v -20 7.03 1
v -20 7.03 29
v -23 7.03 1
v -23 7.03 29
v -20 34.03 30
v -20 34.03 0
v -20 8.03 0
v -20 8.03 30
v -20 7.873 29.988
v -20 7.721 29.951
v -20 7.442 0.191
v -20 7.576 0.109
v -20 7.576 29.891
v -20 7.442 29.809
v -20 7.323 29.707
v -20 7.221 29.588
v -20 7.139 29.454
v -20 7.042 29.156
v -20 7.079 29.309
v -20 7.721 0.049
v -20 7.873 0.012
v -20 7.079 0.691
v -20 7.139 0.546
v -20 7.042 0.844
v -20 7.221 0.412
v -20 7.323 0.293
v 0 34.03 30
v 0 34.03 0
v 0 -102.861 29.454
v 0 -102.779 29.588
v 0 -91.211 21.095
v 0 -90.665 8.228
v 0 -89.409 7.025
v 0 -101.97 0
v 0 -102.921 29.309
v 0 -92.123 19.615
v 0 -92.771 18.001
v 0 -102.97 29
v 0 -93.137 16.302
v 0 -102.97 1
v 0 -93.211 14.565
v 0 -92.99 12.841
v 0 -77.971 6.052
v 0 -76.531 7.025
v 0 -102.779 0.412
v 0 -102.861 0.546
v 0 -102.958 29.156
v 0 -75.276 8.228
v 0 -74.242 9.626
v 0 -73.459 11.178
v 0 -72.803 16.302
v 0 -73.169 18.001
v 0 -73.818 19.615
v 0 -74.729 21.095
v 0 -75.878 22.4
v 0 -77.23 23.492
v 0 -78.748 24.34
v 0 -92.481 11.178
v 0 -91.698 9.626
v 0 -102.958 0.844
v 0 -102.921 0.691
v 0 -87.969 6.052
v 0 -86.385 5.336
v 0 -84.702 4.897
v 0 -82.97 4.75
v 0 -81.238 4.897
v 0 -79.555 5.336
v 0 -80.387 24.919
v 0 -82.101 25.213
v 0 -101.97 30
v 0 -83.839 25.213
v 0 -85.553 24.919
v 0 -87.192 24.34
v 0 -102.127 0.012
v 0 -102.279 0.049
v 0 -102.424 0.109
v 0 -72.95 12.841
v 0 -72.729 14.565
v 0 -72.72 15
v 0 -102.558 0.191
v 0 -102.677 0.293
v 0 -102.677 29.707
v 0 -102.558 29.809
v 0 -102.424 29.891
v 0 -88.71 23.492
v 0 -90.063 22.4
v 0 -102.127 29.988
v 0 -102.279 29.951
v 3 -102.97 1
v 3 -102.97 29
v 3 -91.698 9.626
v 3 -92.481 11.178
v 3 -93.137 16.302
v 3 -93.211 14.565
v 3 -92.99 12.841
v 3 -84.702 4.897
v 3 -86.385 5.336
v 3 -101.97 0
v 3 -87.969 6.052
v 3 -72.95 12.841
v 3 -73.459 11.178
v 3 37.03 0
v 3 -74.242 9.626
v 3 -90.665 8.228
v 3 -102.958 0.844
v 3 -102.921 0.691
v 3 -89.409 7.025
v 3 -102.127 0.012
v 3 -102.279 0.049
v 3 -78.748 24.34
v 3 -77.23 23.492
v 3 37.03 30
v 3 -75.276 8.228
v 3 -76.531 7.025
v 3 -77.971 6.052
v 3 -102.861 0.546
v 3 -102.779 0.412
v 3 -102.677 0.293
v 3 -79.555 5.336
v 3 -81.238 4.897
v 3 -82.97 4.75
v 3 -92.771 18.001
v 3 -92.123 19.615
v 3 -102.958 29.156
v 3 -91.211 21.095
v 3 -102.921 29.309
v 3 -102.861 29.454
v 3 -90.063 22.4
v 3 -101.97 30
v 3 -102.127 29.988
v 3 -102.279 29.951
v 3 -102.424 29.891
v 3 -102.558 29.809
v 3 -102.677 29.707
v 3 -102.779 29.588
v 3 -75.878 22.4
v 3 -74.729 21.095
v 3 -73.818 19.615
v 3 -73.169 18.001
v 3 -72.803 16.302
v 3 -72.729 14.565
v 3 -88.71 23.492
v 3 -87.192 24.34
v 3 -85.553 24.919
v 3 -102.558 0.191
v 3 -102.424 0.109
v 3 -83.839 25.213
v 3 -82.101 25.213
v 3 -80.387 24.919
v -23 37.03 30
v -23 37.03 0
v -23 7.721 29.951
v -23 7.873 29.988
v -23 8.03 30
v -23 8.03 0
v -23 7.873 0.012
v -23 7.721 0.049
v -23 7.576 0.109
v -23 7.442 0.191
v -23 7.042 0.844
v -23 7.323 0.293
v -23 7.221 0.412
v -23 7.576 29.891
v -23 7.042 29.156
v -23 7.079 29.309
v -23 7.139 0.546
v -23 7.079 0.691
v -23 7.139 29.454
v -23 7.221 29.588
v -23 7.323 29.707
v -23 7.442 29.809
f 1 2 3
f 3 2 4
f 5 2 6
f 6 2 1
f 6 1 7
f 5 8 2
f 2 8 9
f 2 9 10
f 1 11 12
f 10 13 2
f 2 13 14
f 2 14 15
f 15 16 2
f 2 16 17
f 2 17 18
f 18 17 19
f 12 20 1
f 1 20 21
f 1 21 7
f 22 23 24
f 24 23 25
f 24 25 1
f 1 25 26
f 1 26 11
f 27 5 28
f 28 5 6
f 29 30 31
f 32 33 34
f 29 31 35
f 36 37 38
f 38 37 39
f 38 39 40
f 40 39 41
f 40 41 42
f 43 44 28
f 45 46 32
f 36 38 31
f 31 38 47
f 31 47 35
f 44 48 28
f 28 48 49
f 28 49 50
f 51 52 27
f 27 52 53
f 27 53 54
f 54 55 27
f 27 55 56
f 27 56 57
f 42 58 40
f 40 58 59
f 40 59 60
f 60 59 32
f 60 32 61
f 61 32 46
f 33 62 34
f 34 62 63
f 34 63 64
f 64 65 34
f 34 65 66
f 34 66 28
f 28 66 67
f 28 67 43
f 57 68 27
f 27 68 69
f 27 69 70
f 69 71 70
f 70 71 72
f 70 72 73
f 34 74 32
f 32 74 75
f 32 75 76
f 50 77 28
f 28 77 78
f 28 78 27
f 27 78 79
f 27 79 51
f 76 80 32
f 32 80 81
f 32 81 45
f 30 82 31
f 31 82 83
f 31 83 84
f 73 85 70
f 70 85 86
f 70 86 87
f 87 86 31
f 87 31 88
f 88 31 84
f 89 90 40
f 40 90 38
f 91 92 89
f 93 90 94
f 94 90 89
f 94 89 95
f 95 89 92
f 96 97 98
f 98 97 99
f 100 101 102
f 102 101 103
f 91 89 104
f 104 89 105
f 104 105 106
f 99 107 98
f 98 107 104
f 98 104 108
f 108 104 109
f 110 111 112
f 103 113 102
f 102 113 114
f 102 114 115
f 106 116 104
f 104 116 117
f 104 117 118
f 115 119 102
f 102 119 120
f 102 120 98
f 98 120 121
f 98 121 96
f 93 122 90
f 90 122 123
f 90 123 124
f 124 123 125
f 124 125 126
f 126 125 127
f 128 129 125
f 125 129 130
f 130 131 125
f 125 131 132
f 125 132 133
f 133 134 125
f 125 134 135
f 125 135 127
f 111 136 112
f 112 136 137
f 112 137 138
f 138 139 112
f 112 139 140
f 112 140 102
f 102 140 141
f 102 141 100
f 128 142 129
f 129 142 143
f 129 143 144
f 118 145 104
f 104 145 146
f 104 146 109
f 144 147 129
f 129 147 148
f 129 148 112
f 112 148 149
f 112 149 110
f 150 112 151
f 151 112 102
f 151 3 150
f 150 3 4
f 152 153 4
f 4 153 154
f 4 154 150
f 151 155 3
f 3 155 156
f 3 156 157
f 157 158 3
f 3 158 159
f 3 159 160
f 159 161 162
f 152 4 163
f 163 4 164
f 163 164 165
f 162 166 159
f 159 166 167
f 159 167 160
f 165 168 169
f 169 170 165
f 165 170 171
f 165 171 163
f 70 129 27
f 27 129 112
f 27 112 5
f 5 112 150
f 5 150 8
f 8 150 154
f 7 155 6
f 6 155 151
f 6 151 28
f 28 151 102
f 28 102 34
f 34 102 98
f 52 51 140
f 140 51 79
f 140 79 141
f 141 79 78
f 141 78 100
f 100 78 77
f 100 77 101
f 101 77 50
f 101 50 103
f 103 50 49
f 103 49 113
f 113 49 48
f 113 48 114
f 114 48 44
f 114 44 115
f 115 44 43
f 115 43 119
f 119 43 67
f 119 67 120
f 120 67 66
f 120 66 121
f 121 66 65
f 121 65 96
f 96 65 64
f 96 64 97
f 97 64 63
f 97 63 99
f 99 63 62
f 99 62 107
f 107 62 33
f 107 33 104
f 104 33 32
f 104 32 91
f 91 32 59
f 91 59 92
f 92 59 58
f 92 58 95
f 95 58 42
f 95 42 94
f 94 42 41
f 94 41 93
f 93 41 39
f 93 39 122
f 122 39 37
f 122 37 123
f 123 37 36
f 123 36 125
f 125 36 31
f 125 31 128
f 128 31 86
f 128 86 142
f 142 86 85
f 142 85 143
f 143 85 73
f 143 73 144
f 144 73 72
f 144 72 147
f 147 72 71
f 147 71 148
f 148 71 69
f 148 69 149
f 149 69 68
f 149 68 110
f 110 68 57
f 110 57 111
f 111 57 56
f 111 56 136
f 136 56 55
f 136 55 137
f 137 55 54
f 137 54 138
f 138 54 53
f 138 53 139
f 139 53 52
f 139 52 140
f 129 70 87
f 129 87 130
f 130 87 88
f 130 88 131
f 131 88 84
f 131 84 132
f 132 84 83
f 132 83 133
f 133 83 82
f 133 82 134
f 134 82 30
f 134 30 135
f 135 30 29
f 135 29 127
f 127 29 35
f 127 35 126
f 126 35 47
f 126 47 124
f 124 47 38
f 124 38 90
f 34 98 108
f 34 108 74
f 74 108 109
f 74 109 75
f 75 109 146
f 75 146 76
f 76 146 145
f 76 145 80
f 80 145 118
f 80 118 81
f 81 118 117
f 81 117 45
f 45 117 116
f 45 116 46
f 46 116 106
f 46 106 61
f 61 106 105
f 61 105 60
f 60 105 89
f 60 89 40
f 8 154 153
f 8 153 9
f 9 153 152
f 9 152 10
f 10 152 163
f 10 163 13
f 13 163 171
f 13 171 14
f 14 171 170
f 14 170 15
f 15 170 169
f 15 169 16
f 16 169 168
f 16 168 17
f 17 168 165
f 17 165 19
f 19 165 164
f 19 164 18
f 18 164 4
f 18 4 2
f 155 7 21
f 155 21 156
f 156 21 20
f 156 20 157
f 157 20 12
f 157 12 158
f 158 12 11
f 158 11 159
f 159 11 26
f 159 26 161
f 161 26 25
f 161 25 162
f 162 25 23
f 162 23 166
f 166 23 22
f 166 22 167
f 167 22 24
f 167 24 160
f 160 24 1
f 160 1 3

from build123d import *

# Parameters (mm, degrees)
EXTRUDE_1_DEPTH     = 30
SKETCH_2_R          = 10.25
CUT_EXTRUDE_1_DEPTH = 30
FILLET_2_R          = 1
FILLET_3_R          = 1
FILLET_4_R          = 1
FILLET_5_R          = 1


with BuildPart() as part:
    # Эскиз1 → Бобышка-Вытянуть1 (new body)
    with BuildSketch(Plane.XY):
        Polygon((-20, 7.029837238), (-20, 34.029837238), (0, 34.029837238), (0, -102.970162762), (3, -102.970162762), (3, 37.029837238), (-23, 37.029837238), (-23, 7.029837238), align=None)
    extrude(amount=EXTRUDE_1_DEPTH)

    # Эскиз2 → Вырез-Вытянуть1 (cut)
    with BuildSketch(Plane(origin=(3, 0, 0), x_dir=(0, 0, -1), z_dir=(1, 0, 0))):
        with Locations((-15, -82.970162762)):
            Circle(SKETCH_2_R)
    extrude(amount=-CUT_EXTRUDE_1_DEPTH, mode=Mode.SUBTRACT)

    # Скругление2
    fillet_2_edges = [part.edges().sort_by_distance(p)[0] for p in [
        (1.5, -102.970162762, 30),
    ]]
    fillet(fillet_2_edges, radius=FILLET_2_R)

    # Скругление3
    fillet_3_edges = [part.edges().sort_by_distance(p)[0] for p in [
        (1.5, -102.970162762, 0),
    ]]
    fillet(fillet_3_edges, radius=FILLET_3_R)

    # Скругление4
    fillet_4_edges = [part.edges().sort_by_distance(p)[0] for p in [
        (-21.5, 7.029837238, 30),
    ]]
    fillet(fillet_4_edges, radius=FILLET_4_R)

    # Скругление5
    fillet_5_edges = [part.edges().sort_by_distance(p)[0] for p in [
        (-21.5, 7.029837238, 0),
    ]]
    fillet(fillet_5_edges, radius=FILLET_5_R)


solid = part.part
